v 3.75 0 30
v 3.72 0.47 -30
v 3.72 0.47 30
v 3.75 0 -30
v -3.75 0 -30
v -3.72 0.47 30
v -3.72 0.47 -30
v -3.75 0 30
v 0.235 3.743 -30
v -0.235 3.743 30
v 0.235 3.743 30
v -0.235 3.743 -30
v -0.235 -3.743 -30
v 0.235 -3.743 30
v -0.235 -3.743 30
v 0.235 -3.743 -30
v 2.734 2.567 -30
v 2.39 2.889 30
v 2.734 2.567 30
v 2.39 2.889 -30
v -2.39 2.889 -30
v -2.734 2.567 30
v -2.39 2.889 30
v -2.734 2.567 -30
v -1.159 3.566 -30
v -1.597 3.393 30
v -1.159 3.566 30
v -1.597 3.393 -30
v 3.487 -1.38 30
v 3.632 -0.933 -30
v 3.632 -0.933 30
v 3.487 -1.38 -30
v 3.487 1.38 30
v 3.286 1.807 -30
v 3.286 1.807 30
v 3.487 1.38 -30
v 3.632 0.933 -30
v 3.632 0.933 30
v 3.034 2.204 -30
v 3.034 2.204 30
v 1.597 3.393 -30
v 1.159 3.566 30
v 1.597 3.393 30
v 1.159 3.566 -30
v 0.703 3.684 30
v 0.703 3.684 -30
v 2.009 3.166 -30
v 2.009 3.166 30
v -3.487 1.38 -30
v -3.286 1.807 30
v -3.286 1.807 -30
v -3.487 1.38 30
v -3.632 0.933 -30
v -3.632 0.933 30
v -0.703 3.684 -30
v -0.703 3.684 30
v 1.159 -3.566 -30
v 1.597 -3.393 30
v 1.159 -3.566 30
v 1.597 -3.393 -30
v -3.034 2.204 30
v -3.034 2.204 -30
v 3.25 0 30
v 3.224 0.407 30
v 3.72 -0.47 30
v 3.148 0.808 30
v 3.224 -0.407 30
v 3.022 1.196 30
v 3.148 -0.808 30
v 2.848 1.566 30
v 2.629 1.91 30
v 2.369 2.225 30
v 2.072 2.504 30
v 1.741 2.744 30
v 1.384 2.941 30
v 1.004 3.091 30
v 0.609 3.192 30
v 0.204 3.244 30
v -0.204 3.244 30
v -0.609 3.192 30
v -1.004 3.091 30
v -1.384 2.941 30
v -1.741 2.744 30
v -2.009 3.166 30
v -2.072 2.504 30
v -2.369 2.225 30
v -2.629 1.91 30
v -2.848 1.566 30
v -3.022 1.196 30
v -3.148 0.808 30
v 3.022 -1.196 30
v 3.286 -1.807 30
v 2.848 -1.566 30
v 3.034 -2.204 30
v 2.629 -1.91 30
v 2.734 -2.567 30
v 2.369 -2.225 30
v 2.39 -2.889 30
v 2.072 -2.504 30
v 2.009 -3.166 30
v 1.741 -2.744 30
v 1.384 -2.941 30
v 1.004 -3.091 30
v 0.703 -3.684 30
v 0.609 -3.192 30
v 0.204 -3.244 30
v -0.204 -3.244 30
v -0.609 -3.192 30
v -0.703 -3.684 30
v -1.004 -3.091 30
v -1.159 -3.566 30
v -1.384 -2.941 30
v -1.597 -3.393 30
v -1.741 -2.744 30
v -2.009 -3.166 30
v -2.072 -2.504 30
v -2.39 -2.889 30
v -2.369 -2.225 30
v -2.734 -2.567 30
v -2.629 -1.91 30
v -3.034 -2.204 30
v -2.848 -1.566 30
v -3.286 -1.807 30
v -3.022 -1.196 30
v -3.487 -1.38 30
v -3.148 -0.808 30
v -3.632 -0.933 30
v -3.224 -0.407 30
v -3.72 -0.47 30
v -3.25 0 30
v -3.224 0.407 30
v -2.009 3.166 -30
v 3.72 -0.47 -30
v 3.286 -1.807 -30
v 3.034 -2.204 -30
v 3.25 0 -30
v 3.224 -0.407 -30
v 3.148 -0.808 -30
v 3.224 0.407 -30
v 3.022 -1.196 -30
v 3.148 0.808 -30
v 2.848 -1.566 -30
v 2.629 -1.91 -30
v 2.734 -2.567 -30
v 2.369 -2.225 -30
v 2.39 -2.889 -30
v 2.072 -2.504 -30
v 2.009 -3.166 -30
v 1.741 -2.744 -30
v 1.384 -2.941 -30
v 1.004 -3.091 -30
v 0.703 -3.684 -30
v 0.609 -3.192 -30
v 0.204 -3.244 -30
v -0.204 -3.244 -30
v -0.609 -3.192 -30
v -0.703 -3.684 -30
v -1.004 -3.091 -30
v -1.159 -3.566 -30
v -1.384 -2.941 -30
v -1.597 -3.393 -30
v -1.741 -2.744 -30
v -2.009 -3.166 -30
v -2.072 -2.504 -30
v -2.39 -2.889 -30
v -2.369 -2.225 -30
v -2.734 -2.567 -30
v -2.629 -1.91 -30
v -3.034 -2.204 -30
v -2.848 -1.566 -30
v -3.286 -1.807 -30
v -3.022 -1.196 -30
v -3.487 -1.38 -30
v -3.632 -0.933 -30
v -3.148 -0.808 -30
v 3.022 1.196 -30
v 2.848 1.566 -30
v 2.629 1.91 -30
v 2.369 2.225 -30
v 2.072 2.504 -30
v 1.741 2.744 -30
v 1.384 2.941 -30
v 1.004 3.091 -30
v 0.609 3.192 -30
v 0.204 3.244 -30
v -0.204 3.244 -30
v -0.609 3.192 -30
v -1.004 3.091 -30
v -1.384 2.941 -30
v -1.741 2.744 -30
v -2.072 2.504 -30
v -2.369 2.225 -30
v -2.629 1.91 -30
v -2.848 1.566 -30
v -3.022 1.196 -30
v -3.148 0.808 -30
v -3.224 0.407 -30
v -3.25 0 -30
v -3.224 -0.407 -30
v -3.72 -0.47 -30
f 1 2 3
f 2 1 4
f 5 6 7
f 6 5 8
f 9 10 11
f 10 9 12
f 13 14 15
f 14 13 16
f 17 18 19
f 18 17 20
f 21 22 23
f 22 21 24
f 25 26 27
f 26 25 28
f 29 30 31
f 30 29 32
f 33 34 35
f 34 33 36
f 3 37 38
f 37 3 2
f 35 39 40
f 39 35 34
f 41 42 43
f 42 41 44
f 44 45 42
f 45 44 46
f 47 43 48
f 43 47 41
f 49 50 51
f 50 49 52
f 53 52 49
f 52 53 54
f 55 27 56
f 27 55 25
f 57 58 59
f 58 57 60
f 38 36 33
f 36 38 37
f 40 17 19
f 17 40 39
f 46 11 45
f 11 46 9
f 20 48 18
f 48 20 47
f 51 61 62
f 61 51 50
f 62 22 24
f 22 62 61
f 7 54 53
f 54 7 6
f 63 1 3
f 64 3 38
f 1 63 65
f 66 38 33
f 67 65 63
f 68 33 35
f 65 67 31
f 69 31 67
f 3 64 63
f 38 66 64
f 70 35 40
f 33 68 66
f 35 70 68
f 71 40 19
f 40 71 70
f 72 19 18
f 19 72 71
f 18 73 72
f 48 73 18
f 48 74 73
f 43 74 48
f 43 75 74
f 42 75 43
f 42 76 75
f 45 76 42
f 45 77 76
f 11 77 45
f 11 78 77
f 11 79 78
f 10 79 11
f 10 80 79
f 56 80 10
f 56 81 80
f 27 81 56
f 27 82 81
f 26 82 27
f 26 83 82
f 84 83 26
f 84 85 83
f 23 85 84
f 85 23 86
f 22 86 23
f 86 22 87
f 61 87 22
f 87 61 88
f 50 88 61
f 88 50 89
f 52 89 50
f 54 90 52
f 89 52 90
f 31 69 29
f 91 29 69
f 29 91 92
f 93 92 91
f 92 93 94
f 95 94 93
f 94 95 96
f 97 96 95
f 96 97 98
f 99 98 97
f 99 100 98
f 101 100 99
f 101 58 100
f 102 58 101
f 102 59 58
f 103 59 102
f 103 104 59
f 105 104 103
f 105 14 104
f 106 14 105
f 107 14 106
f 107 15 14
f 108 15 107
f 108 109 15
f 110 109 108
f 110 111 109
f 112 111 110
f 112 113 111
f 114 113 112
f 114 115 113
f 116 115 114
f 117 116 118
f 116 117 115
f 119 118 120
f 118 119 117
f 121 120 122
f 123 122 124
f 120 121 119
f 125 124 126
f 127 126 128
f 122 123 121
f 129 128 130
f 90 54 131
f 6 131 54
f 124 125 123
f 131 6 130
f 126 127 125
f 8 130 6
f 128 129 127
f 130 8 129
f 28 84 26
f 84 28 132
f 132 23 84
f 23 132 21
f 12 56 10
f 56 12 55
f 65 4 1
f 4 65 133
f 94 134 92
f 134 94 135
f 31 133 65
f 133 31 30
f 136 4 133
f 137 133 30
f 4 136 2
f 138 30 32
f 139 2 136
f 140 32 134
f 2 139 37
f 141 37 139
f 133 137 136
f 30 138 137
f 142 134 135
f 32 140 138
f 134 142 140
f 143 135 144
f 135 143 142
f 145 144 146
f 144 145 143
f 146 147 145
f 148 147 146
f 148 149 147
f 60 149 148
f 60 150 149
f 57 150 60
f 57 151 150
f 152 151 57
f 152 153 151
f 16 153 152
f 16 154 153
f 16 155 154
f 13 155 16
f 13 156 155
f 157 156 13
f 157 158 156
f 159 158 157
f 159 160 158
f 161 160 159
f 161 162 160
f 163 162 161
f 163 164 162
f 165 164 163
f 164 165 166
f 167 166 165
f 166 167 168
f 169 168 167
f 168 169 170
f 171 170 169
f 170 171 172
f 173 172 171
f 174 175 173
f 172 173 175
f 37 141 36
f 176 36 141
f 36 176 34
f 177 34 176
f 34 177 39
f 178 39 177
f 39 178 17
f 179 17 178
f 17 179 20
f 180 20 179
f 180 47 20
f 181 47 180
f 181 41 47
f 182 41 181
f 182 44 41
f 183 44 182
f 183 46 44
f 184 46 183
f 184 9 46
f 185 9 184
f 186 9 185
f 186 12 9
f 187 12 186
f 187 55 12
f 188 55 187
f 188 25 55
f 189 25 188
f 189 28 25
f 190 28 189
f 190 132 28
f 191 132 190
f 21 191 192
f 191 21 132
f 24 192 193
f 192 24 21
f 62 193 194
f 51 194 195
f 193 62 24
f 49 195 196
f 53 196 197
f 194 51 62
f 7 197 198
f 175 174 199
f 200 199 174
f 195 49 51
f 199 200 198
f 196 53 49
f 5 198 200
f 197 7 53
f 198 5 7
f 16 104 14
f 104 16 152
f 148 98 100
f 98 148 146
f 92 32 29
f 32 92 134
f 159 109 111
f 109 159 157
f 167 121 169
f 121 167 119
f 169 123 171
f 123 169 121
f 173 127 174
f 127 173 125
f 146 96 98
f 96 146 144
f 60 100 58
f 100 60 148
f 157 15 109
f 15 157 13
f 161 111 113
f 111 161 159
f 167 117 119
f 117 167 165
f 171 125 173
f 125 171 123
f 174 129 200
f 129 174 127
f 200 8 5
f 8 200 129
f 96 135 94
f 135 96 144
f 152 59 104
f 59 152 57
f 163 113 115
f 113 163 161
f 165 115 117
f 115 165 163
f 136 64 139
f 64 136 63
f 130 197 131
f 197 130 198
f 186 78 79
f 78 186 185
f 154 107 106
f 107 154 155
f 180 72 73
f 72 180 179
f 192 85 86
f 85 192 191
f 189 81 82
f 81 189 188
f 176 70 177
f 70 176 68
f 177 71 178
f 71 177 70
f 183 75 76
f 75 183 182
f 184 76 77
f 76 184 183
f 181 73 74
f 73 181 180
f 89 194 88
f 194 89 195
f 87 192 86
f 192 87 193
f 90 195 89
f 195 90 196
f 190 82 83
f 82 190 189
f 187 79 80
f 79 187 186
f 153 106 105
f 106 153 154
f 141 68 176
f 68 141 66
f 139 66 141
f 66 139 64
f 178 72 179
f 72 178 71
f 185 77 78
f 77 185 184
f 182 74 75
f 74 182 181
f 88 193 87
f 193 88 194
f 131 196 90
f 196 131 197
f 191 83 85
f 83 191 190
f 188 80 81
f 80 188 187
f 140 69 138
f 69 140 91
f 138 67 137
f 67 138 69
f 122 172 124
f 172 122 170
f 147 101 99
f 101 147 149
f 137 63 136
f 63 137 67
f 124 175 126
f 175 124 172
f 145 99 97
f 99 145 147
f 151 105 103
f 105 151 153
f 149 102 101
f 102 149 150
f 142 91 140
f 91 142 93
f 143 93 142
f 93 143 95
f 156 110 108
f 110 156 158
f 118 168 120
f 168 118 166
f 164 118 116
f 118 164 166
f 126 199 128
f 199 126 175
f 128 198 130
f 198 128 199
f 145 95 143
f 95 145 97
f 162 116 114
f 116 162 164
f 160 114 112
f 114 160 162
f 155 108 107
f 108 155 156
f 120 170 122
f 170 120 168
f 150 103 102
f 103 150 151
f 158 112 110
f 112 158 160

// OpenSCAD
$fn = 50;


difference() {
	union() {
		translate(v = [0, 0, -30.0000000000]) {
			cylinder(h = 60, r = 3.7500000000);
		}
	}
	union() {
		translate(v = [0, 0, -100.0000000000]) {
			cylinder(h = 200, r = 3.2500000000);
		}
	}
}
